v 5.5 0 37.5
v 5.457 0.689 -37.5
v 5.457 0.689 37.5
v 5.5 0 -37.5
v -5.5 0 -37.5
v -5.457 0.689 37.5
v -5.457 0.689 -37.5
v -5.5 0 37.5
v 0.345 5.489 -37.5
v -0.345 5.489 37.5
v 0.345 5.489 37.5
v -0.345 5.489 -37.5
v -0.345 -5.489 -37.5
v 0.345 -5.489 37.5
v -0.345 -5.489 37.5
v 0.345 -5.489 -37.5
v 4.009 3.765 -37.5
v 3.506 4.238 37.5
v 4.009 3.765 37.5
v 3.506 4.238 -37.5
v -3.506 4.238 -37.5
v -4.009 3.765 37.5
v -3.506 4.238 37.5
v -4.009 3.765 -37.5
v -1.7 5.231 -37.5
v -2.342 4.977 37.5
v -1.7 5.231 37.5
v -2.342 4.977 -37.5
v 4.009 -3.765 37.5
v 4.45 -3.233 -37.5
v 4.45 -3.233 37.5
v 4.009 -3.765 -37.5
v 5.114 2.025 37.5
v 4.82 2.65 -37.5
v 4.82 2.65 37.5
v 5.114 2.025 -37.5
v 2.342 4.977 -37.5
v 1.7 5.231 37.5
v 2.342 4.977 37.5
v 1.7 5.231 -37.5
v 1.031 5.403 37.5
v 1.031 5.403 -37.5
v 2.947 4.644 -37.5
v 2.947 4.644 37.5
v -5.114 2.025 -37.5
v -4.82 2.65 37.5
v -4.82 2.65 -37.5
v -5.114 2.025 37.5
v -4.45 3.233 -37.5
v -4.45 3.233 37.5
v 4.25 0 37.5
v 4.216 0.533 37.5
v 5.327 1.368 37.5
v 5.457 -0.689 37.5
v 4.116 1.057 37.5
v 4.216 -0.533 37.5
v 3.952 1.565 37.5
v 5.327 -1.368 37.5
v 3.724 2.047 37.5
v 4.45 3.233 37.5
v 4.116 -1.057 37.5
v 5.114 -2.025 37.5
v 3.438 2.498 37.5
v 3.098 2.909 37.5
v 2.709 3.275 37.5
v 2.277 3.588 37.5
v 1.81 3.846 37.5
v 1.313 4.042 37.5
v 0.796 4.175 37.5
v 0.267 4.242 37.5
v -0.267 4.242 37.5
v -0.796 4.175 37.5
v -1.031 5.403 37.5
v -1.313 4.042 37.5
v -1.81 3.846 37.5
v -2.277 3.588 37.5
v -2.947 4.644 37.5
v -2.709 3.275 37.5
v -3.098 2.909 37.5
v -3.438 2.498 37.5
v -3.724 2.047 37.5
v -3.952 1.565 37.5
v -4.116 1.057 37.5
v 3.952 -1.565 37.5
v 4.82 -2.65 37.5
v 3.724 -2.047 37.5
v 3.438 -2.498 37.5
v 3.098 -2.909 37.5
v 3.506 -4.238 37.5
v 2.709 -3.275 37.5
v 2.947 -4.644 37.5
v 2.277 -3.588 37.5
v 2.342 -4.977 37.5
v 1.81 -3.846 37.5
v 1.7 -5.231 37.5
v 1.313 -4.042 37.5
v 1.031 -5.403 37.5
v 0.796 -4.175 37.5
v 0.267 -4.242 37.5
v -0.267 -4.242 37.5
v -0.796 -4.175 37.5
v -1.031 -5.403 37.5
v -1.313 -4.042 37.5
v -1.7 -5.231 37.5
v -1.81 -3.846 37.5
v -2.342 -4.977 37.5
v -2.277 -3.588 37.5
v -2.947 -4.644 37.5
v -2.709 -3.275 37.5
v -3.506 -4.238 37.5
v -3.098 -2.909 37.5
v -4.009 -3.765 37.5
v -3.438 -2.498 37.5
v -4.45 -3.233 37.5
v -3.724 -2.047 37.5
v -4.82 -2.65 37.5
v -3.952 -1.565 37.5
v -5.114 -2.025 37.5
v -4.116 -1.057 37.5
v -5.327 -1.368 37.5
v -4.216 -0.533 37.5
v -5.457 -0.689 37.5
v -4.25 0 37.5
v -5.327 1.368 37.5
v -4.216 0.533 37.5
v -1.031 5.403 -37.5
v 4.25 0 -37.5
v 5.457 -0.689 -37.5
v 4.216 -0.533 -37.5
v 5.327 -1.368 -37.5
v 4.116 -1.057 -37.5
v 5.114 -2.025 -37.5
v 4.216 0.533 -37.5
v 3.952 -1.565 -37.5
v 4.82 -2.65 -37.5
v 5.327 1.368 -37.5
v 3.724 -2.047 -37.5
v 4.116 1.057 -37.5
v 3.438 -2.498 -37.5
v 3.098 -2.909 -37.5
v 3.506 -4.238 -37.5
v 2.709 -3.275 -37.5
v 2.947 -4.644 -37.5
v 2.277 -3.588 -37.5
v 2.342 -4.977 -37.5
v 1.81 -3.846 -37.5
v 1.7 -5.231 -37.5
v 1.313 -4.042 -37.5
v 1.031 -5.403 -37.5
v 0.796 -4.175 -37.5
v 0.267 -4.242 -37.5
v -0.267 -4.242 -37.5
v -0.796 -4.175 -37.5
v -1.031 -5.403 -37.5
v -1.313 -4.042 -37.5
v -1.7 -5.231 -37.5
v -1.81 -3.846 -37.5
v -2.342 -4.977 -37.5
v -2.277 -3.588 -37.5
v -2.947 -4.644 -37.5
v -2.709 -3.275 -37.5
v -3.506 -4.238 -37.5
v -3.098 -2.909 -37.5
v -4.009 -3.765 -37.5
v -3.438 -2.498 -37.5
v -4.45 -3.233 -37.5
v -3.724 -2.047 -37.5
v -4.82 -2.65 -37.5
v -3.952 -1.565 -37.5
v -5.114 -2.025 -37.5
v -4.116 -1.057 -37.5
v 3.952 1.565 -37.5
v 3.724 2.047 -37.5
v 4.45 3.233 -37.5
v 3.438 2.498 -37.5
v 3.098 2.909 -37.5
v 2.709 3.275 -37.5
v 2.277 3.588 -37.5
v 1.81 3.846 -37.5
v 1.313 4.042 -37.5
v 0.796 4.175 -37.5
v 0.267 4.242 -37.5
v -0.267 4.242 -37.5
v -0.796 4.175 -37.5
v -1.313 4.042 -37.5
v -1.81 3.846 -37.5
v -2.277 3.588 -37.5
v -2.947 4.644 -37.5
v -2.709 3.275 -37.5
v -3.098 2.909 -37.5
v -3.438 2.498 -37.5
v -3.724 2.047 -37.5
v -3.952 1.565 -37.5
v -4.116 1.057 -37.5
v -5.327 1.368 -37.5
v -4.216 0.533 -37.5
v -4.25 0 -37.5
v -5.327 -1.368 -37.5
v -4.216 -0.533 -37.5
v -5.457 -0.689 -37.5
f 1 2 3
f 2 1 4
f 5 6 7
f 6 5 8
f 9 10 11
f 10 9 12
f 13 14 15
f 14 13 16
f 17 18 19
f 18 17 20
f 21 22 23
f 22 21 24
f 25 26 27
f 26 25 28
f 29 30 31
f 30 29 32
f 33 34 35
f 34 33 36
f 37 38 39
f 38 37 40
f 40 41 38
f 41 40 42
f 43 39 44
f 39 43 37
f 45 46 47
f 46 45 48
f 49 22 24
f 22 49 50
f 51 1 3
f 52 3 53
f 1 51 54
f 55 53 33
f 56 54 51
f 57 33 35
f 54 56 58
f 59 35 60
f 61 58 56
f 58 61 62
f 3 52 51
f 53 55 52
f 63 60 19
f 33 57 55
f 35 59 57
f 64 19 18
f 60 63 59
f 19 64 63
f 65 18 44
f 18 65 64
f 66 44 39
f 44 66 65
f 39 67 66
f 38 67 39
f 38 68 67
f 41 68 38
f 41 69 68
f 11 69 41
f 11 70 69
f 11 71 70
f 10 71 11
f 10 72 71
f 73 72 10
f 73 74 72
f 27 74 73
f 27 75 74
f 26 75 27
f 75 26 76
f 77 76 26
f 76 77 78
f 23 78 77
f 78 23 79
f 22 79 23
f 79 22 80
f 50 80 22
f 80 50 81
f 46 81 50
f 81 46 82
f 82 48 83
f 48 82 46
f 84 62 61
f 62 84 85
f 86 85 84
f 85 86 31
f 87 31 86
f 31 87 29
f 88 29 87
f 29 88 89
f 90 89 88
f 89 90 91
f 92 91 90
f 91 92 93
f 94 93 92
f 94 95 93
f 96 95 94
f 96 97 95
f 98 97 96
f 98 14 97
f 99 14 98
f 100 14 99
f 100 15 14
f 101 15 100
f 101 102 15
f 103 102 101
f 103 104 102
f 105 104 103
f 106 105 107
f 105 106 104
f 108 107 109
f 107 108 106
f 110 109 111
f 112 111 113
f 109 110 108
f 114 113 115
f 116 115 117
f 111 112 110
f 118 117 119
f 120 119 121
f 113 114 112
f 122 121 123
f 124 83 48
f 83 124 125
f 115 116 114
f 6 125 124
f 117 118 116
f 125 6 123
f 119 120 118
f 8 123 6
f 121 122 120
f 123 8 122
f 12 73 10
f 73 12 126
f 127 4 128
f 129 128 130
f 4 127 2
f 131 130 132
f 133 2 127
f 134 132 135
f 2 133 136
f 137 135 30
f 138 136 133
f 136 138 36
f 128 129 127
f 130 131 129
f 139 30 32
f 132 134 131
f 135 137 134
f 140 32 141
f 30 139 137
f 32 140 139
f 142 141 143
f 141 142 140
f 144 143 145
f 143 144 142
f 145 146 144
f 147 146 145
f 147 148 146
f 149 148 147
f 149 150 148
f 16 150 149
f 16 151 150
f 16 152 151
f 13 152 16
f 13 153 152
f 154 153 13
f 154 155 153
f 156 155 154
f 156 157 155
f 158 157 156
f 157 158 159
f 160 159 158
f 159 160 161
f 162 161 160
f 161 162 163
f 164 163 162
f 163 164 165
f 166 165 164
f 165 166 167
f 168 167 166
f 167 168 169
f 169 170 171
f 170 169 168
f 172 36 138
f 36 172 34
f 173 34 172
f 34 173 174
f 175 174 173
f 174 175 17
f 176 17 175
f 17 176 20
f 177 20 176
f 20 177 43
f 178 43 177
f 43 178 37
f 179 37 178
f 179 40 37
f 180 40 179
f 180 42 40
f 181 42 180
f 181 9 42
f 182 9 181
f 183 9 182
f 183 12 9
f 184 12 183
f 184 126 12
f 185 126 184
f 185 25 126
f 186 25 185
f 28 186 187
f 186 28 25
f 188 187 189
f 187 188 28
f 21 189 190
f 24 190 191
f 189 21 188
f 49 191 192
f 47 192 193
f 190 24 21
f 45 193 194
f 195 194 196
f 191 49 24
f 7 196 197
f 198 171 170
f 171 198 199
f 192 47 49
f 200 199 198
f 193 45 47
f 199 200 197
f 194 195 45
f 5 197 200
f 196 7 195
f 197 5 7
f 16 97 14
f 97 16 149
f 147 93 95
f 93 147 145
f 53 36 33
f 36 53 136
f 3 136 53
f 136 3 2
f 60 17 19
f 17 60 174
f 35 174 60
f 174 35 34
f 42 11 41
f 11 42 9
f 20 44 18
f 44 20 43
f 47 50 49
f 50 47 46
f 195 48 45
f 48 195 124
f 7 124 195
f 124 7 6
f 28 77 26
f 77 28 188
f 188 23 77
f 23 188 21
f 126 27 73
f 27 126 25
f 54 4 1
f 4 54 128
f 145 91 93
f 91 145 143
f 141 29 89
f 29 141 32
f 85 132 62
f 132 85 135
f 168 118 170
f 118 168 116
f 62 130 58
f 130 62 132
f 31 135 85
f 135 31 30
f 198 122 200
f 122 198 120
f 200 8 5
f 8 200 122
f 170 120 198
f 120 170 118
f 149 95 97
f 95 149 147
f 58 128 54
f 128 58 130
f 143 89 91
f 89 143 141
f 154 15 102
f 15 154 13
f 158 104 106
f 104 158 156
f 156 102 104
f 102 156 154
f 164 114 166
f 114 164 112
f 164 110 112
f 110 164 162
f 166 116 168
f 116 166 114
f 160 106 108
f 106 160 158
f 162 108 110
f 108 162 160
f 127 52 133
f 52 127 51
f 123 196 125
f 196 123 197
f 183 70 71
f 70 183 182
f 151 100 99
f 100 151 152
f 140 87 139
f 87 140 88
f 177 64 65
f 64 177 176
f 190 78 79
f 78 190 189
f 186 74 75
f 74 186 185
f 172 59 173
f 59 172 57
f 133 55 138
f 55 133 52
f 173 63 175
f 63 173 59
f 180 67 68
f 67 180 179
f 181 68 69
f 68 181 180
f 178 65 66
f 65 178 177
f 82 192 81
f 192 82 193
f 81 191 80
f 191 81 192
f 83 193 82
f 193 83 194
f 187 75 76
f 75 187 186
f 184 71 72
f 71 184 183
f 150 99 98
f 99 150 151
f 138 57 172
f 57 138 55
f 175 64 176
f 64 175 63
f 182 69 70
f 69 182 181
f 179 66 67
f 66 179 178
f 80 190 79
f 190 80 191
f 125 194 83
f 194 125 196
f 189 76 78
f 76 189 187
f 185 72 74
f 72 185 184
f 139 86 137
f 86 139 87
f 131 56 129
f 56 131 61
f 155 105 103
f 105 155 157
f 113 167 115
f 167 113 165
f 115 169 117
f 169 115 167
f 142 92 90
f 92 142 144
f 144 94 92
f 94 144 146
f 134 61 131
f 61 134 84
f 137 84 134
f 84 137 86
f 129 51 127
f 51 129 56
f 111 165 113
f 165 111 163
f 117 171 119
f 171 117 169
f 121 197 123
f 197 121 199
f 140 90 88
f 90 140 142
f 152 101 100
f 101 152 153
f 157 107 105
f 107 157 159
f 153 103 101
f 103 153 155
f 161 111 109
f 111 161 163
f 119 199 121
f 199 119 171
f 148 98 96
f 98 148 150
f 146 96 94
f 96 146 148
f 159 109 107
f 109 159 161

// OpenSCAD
$fn = 50;


difference() {
	union() {
		translate(v = [0, 0, -37.5000000000]) {
			cylinder(h = 75, r = 5.5000000000);
		}
	}
	union() {
		translate(v = [0, 0, -100.0000000000]) {
			cylinder(h = 200, r = 4.2500000000);
		}
	}
}
